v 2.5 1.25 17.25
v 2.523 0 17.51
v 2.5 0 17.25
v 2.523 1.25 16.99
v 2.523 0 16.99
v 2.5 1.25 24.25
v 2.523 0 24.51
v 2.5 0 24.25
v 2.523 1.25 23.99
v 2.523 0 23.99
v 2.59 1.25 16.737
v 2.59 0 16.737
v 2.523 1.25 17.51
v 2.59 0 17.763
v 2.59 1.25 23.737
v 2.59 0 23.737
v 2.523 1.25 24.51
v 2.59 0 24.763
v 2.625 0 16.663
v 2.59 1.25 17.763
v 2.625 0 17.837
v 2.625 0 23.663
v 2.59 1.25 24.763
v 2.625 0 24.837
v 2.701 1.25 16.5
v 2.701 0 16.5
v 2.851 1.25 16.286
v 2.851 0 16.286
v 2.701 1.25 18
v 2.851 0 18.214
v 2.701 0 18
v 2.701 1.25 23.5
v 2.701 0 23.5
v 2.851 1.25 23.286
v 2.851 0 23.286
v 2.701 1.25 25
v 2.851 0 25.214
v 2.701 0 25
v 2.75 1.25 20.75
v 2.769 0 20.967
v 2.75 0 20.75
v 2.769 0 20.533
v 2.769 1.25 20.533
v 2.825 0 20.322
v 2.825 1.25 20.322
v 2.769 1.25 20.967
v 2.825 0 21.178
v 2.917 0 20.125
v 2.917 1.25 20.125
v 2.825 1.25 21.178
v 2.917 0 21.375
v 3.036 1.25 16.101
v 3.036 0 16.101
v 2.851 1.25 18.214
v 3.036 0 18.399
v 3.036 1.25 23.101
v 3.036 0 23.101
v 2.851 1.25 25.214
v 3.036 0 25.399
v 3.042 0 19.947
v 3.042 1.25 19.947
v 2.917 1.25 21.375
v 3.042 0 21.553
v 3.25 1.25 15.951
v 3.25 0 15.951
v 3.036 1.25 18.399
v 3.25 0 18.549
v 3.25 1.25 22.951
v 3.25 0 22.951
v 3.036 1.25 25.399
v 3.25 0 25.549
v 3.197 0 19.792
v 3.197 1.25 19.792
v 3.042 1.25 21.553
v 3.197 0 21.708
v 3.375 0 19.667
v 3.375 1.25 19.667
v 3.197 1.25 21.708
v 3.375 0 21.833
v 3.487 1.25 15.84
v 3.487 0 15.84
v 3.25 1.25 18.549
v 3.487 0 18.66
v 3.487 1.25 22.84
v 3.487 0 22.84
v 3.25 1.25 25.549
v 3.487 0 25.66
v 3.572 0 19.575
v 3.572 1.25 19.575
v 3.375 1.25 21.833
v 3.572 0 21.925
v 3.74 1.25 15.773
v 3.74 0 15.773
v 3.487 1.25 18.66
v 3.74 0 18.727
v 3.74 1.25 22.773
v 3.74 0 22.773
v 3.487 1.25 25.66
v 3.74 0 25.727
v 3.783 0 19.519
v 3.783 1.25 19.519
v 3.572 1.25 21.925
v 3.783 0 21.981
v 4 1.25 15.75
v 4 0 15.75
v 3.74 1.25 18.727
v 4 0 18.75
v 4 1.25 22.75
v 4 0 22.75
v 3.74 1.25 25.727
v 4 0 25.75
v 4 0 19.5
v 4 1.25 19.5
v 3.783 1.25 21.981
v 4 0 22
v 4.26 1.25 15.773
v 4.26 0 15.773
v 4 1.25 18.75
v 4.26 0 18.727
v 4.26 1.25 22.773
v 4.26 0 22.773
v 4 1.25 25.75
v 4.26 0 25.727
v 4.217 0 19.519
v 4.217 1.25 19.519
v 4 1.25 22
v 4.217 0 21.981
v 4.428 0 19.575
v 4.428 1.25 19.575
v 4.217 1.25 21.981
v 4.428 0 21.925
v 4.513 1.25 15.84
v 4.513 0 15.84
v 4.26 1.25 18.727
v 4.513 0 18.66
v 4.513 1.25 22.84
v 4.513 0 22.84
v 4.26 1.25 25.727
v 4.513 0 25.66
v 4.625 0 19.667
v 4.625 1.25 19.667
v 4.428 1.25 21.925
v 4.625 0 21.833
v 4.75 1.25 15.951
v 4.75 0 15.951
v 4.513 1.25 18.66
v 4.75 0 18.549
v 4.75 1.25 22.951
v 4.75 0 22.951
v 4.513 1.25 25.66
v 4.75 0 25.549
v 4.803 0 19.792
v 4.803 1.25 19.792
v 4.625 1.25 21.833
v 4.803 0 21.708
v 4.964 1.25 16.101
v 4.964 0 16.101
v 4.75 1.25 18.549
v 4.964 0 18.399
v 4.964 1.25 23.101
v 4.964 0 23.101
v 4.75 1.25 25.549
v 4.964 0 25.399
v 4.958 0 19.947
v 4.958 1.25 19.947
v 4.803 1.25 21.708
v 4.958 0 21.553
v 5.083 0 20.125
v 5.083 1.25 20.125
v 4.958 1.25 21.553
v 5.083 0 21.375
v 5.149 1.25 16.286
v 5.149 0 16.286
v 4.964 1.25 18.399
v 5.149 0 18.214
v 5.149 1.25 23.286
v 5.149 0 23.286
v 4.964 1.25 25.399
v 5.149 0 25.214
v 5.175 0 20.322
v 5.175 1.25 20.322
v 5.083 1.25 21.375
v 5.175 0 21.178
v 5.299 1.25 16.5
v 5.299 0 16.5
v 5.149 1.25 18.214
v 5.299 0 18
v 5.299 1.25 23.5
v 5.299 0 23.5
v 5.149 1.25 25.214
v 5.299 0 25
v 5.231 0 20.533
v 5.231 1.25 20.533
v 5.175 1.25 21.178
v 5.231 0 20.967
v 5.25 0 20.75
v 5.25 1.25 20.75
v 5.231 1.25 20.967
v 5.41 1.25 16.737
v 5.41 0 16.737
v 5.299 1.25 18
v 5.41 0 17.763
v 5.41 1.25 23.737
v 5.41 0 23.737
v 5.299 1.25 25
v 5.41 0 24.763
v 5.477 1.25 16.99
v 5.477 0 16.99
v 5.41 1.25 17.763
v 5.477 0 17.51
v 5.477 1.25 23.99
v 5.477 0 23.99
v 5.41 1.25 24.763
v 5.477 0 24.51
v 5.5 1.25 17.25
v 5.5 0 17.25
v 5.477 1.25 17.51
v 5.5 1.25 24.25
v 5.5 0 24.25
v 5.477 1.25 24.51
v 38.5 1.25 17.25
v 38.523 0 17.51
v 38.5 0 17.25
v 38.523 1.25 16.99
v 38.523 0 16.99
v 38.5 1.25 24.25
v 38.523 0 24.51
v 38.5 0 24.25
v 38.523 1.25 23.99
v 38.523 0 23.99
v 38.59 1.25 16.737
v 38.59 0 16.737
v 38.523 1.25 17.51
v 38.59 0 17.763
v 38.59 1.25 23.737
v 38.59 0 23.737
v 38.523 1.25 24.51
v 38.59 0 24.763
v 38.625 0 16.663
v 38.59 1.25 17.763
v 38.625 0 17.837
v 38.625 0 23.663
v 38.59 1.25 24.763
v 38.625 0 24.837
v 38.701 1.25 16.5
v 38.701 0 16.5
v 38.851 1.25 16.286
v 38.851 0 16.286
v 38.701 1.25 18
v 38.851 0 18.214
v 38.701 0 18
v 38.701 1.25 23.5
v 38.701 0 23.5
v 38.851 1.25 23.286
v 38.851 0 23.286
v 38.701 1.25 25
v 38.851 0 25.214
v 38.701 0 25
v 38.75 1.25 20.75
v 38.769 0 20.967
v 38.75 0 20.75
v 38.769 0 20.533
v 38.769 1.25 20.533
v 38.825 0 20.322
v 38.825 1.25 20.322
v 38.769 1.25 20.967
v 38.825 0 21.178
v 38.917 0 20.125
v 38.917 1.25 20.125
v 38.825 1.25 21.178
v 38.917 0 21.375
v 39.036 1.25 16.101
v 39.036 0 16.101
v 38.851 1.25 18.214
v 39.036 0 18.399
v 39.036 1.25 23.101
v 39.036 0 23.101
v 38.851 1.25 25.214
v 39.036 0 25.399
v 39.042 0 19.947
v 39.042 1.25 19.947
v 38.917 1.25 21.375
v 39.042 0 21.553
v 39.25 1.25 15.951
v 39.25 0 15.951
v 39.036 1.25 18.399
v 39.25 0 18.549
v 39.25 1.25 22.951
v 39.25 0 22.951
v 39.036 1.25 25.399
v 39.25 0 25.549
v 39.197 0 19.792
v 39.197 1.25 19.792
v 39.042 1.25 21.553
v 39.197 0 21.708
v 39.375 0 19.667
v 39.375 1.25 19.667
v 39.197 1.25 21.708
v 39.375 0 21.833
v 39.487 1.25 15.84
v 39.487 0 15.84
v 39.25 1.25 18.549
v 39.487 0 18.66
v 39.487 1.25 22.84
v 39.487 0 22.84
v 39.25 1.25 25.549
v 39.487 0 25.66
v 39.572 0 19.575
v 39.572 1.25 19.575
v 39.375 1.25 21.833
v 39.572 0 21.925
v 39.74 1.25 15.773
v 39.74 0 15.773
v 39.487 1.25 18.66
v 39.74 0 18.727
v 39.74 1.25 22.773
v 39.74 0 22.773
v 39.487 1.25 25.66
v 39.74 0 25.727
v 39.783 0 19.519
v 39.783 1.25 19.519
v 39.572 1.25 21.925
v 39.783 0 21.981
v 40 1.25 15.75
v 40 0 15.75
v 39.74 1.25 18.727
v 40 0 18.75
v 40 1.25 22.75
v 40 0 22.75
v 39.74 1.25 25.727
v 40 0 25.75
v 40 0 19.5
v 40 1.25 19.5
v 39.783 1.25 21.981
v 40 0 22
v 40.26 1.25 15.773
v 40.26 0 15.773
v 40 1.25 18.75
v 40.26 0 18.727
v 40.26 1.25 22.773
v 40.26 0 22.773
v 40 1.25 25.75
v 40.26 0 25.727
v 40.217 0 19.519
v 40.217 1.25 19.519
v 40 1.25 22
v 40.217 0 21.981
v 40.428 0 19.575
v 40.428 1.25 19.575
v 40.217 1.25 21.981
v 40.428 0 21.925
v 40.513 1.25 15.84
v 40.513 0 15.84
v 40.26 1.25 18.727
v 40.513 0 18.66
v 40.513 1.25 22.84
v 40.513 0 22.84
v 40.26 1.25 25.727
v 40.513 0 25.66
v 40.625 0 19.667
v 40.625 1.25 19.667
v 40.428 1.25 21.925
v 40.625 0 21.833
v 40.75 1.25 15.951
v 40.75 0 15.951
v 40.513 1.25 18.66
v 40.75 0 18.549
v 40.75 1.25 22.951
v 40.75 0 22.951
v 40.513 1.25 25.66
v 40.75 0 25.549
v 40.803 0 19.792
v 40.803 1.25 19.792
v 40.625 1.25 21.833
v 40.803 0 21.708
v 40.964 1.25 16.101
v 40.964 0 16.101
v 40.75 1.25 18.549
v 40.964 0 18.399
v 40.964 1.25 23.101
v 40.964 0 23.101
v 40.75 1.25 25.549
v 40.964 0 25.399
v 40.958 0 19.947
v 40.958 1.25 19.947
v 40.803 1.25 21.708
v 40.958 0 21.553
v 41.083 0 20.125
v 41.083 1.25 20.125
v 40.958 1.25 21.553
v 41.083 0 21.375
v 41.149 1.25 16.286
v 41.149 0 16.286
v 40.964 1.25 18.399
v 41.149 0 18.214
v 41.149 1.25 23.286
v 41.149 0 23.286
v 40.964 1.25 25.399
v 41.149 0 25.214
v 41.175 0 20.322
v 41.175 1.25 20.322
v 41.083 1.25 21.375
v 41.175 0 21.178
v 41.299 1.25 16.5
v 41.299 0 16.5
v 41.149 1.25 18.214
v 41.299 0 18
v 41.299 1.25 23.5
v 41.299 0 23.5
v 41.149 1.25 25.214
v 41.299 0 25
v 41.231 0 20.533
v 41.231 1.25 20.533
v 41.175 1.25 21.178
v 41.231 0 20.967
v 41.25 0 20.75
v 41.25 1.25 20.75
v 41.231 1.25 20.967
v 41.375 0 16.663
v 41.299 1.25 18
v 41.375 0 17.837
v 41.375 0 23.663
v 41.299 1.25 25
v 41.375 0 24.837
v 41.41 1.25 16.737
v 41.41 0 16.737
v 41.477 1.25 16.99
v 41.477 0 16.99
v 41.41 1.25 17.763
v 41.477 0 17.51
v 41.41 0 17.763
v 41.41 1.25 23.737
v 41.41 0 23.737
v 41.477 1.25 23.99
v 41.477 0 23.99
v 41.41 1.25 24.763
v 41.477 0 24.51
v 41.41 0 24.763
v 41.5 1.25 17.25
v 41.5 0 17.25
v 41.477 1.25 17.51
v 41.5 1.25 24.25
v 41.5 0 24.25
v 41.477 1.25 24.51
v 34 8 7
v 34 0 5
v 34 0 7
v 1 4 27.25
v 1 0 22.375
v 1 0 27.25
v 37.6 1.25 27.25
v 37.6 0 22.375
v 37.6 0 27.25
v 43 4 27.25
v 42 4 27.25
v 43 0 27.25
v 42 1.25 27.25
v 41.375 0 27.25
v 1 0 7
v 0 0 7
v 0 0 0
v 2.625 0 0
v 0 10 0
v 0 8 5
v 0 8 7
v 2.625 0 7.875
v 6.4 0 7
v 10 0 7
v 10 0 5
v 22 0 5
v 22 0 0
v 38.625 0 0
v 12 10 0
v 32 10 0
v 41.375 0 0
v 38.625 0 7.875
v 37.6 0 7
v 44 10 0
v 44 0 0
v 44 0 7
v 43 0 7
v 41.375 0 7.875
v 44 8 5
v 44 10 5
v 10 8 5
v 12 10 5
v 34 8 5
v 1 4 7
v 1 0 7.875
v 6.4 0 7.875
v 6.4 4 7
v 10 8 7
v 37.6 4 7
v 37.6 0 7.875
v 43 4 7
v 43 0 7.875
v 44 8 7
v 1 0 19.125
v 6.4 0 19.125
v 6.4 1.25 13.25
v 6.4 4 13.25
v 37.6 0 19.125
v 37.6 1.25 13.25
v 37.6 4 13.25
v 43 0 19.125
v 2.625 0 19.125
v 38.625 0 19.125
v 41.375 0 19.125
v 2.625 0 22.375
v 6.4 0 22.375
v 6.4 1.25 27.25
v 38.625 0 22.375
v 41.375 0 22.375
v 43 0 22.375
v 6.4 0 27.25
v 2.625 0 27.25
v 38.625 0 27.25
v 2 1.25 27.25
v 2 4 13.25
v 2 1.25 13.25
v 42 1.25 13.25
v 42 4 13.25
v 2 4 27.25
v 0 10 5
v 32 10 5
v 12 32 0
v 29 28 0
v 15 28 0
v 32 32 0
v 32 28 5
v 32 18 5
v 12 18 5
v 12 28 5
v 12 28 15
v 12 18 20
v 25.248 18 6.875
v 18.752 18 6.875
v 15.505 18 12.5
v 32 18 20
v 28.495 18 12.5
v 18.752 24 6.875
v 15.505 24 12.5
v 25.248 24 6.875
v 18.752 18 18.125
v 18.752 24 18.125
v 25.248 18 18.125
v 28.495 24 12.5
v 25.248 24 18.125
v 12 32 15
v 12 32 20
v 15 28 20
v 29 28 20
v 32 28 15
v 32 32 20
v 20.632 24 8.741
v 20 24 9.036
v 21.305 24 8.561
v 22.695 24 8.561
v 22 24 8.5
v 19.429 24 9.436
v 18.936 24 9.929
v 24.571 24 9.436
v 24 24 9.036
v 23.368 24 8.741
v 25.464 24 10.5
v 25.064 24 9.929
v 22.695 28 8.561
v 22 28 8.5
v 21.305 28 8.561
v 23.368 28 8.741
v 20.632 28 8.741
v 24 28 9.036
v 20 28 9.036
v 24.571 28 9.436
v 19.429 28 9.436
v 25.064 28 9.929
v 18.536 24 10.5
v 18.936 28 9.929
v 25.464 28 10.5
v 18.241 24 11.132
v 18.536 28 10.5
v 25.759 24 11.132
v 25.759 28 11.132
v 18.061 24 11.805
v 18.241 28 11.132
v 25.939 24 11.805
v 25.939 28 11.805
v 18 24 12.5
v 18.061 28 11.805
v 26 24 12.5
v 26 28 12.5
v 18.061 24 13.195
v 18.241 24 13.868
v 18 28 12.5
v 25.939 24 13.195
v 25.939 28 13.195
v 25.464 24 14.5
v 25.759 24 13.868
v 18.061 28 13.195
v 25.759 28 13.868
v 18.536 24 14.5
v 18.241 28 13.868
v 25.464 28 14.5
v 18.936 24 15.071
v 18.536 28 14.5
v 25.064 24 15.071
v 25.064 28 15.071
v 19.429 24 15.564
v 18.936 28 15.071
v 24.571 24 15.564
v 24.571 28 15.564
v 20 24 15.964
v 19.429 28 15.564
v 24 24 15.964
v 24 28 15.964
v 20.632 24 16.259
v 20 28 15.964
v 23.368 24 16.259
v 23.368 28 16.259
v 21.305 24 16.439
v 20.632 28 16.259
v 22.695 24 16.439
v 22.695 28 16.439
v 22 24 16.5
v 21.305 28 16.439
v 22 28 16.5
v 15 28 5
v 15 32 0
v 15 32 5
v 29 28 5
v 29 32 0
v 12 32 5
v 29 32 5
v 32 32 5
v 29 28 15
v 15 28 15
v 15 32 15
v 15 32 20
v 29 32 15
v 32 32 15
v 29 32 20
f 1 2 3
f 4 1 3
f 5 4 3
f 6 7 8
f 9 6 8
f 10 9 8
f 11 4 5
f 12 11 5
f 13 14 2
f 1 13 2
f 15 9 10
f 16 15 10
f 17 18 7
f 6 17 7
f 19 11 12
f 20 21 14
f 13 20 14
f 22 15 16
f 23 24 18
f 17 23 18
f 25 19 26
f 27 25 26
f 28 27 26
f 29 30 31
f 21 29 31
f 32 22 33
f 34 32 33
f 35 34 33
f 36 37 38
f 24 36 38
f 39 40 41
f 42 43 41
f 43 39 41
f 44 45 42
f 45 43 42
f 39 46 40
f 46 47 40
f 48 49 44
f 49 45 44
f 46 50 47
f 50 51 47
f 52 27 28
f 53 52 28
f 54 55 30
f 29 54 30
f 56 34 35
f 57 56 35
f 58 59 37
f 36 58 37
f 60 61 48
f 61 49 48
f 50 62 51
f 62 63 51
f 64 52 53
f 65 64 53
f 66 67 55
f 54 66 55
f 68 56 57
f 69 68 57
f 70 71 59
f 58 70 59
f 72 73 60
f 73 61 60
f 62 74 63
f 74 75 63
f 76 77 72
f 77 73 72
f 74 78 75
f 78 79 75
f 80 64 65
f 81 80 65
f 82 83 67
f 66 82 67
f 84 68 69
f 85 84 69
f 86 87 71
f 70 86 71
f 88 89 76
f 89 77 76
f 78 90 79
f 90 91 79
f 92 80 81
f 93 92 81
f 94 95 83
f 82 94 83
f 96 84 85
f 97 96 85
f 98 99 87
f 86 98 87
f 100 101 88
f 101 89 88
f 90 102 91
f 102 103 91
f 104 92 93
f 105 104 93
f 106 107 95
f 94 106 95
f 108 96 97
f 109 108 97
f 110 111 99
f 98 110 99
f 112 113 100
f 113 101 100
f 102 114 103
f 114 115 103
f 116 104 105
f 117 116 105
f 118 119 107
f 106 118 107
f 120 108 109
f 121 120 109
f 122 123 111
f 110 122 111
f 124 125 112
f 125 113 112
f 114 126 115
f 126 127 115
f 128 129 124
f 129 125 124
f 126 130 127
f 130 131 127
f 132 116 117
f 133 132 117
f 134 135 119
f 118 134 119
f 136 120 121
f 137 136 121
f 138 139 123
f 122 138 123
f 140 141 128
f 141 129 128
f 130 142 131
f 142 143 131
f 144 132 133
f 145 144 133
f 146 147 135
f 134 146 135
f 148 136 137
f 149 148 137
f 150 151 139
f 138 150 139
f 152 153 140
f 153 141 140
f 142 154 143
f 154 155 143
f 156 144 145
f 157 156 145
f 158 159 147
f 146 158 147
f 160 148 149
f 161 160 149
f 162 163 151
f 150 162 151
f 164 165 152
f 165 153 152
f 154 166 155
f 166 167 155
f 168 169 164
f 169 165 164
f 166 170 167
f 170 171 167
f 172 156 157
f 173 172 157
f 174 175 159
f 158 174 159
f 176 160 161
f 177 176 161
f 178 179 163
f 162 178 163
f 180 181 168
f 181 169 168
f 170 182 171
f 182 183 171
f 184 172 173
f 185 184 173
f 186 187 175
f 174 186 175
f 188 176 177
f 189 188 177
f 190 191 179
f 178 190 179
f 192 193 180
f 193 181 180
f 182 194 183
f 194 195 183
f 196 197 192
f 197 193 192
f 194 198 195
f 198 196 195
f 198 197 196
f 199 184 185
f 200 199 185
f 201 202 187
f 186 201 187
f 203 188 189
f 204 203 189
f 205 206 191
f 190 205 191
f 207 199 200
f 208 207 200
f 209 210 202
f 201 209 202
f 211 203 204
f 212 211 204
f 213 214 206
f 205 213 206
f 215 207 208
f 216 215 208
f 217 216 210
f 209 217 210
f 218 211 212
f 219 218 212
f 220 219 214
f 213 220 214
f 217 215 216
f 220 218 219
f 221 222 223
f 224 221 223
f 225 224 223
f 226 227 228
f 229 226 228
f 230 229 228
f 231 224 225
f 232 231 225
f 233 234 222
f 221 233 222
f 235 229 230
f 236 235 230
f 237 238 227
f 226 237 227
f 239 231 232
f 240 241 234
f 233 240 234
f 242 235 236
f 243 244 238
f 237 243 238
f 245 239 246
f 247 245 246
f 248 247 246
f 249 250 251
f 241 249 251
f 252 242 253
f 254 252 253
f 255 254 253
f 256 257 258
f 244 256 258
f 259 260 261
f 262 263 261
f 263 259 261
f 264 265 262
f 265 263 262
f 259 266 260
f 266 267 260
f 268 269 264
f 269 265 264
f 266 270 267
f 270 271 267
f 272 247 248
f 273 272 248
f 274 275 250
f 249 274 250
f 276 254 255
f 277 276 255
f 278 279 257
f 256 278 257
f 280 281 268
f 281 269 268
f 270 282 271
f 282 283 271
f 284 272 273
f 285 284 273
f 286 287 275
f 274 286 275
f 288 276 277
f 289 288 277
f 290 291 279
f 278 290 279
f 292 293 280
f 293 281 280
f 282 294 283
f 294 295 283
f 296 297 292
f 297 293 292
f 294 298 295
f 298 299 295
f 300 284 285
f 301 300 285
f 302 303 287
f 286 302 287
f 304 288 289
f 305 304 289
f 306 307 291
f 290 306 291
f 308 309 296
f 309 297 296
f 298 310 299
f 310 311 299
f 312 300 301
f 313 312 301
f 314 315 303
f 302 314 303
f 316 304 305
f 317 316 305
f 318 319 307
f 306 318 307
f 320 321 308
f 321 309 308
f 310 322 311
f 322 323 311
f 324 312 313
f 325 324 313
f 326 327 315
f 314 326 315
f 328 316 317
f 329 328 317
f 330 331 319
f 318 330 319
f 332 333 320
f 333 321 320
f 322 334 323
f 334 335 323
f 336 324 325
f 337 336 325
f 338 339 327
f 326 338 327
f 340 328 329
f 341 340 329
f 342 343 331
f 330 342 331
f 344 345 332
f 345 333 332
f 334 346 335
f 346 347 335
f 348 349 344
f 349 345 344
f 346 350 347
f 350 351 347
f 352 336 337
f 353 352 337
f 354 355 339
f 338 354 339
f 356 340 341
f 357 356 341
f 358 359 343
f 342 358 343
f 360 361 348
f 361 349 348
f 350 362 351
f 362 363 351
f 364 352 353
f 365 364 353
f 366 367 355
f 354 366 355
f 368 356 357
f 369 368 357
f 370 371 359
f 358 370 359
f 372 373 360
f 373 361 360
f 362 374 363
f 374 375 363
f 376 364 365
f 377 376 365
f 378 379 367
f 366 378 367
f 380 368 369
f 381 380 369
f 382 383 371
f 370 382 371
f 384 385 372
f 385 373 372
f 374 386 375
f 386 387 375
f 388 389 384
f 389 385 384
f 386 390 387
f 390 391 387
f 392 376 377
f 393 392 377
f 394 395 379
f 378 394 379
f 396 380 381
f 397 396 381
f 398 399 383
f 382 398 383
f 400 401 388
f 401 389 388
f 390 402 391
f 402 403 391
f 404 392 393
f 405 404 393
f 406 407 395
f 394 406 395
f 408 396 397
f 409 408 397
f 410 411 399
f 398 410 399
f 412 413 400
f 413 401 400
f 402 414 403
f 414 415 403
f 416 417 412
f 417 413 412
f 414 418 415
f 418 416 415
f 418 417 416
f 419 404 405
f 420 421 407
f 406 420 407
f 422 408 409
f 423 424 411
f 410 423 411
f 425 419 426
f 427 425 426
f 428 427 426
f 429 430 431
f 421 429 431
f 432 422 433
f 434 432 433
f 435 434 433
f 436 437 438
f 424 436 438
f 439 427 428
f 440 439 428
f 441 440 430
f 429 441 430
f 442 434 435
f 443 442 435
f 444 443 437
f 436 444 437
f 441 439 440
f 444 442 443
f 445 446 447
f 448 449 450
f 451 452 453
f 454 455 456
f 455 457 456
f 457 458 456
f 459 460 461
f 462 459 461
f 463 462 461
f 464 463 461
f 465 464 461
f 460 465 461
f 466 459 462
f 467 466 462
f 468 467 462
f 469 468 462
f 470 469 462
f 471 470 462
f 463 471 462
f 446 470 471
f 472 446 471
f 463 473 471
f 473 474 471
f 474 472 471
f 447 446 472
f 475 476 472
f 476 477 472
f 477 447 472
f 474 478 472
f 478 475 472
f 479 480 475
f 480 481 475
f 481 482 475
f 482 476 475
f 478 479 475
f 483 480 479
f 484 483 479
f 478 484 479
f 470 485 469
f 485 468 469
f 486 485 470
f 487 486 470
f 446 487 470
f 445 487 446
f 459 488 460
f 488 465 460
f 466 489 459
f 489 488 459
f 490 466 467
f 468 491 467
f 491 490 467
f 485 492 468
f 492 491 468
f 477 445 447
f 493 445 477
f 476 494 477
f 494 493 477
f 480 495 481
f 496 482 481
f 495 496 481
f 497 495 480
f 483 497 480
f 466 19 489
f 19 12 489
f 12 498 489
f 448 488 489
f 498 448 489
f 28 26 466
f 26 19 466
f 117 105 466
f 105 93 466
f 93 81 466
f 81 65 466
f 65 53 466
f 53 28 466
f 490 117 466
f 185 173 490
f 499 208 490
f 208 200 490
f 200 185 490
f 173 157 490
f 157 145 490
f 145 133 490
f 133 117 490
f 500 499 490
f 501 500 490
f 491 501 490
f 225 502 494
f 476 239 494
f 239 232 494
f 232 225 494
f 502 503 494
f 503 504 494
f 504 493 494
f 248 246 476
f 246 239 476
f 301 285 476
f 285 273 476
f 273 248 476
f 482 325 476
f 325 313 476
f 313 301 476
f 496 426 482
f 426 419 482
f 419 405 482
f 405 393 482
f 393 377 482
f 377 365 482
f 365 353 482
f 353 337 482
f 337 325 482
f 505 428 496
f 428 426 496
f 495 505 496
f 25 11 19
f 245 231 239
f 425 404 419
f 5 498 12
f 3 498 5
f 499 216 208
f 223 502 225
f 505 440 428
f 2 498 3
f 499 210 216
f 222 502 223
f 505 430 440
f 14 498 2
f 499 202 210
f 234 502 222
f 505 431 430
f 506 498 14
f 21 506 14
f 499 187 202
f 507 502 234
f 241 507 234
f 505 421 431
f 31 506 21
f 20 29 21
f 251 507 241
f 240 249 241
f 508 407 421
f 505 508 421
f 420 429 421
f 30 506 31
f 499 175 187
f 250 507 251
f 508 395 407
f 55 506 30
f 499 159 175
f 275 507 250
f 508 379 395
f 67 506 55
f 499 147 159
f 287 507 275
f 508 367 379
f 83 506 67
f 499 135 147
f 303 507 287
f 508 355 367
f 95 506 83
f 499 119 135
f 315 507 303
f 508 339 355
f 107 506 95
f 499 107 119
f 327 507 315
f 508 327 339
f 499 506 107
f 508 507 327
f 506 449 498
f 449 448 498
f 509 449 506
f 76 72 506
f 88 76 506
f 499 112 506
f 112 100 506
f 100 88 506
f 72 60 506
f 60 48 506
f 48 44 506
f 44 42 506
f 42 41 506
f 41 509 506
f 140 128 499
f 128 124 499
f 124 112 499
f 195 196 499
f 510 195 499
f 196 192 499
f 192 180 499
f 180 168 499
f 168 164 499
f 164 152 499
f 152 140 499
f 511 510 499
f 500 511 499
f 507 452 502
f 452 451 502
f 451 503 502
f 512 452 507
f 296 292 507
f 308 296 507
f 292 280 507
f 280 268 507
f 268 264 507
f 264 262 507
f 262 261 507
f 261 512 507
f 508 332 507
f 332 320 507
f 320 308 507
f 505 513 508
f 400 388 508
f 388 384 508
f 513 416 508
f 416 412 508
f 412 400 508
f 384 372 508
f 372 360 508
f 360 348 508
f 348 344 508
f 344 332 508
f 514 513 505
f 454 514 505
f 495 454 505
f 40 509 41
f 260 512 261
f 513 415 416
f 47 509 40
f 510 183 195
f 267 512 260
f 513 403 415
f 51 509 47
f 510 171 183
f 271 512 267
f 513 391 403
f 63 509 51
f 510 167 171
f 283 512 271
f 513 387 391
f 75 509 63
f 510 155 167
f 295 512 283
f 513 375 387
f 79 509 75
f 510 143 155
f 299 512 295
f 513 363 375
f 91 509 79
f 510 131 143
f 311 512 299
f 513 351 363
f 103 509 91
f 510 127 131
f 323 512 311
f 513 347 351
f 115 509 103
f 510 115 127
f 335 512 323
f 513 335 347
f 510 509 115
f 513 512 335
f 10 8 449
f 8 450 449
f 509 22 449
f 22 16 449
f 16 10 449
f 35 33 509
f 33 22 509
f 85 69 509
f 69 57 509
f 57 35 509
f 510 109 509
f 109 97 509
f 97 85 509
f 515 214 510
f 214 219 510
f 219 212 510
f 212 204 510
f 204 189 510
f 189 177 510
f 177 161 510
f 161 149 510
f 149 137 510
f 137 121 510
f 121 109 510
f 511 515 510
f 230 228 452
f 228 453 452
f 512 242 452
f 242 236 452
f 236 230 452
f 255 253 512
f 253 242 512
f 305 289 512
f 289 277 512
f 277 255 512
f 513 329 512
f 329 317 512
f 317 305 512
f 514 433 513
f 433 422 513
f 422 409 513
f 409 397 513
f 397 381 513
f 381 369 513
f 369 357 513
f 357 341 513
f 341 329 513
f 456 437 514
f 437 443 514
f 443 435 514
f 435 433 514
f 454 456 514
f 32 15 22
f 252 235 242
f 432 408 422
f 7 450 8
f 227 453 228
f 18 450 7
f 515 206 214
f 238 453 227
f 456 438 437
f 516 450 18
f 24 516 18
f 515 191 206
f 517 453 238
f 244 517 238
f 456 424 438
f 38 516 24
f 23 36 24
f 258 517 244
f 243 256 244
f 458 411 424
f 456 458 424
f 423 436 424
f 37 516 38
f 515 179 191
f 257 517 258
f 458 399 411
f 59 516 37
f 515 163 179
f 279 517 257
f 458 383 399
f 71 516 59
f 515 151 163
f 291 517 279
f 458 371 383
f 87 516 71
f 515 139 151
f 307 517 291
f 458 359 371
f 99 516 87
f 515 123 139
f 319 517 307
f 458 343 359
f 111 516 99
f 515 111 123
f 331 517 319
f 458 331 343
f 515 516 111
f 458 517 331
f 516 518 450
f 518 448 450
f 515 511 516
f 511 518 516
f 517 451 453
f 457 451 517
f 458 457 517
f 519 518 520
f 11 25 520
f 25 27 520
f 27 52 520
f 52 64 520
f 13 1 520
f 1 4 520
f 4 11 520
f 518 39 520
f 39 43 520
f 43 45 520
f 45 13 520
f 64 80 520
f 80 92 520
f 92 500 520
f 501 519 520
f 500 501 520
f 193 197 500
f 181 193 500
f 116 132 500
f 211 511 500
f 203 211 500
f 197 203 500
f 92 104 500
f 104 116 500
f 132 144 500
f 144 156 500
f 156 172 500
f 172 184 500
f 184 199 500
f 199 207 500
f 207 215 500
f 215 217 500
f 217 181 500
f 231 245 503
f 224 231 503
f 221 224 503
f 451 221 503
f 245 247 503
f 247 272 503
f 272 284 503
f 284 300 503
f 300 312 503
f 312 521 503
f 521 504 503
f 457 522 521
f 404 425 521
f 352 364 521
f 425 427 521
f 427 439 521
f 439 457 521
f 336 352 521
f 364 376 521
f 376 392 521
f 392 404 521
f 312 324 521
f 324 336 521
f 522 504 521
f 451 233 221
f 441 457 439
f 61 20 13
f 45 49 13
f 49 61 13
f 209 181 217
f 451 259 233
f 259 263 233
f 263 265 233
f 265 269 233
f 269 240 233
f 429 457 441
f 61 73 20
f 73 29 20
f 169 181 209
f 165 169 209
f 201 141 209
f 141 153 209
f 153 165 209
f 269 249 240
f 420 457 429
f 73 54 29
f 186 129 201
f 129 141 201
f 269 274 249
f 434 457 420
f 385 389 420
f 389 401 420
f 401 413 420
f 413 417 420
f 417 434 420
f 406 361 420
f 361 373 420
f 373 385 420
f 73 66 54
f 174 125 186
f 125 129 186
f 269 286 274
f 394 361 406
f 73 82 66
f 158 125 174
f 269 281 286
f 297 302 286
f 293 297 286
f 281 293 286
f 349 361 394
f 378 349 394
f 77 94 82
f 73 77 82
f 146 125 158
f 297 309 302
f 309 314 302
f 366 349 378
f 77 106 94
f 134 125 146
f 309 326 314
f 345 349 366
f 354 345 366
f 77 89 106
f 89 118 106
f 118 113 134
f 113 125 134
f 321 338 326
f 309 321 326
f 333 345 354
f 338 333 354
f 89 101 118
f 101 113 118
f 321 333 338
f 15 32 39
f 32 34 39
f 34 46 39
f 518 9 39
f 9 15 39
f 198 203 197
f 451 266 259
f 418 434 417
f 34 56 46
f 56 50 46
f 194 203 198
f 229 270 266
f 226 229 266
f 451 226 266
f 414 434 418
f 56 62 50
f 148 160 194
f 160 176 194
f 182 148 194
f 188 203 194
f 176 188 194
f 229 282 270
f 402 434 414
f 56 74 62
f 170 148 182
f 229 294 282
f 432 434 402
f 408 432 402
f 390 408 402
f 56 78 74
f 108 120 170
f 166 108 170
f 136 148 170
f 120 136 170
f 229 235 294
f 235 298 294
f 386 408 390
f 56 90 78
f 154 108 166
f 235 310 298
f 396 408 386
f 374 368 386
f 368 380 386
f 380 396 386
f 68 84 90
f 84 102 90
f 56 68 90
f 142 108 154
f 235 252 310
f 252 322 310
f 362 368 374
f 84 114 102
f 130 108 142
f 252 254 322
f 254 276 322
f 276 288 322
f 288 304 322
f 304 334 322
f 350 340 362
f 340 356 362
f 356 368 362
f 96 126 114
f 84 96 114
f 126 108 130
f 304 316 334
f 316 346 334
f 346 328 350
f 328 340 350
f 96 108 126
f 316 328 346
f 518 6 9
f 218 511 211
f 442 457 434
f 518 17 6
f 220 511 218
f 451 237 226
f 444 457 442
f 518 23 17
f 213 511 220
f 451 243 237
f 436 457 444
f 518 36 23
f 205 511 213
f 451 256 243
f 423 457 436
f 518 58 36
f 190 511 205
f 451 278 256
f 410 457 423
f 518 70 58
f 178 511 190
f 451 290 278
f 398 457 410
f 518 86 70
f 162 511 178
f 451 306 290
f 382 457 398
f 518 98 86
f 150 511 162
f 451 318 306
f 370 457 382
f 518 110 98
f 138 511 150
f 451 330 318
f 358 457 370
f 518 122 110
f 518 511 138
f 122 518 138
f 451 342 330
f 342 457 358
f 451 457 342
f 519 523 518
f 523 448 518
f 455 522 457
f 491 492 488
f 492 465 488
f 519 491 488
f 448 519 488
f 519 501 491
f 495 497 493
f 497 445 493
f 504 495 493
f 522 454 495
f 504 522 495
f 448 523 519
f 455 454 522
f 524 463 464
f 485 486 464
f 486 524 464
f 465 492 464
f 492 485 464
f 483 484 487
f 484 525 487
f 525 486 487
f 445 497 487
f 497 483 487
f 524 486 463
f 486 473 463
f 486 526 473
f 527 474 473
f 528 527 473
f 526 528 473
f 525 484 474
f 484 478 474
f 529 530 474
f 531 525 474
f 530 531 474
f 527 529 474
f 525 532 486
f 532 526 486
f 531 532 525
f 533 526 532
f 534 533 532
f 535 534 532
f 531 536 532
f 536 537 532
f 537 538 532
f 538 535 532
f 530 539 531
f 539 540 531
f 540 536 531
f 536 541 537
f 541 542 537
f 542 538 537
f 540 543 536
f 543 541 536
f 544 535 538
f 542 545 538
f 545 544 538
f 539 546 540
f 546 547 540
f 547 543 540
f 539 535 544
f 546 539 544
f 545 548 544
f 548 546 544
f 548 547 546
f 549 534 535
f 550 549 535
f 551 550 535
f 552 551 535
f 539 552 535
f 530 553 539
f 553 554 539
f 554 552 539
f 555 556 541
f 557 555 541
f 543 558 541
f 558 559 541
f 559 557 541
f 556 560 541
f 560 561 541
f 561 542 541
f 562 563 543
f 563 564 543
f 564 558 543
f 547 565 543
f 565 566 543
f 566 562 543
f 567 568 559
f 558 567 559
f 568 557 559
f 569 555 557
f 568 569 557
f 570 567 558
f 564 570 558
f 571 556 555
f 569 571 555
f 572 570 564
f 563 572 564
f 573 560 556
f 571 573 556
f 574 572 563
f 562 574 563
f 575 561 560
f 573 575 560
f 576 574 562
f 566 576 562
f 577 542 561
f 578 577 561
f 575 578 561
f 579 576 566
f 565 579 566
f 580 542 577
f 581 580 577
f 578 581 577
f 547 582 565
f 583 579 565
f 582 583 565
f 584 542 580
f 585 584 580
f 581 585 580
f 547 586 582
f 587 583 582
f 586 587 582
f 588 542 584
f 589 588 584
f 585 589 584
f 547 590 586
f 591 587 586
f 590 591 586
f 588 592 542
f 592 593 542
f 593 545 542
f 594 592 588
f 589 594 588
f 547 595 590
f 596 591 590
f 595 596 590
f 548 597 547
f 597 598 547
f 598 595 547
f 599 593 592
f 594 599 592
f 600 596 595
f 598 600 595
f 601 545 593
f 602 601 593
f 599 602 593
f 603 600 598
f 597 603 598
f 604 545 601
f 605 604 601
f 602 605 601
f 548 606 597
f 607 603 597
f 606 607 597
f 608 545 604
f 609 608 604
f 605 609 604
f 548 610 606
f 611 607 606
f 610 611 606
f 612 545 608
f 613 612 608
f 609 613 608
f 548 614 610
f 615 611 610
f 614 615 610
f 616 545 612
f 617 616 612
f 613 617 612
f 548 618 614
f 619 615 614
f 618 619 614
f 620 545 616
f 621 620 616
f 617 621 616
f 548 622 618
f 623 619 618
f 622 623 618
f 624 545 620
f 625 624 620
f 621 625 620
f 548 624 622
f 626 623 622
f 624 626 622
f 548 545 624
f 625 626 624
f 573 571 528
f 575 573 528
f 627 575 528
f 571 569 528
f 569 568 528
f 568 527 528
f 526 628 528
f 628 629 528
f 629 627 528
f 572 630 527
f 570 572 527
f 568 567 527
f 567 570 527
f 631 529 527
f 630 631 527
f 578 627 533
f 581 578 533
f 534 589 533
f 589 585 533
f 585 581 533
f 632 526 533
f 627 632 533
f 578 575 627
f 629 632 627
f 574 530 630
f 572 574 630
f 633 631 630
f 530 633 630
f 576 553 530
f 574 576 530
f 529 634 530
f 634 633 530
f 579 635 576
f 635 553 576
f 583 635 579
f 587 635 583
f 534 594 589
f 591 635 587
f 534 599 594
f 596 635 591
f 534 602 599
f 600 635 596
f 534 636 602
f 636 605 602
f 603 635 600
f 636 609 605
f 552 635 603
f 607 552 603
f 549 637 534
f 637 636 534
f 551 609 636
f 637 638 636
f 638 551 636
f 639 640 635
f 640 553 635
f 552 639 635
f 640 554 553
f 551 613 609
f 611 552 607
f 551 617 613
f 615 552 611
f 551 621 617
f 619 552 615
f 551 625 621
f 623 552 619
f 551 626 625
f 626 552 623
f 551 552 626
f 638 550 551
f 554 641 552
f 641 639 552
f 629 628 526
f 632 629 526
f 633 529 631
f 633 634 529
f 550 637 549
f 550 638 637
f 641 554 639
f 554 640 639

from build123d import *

# Parameters (mm, degrees)
BOSS_EXTRUDE1_DEPTH = 5
SKETCH2_W           = 10
SKETCH2_H           = 8
BOSS_EXTRUDE2_DEPTH = 2
BOSS_EXTRUDE3_DEPTH = 20.25
SKETCH4_R           = 1.25
SKETCH4_R_2         = 1.5
CUT_EXTRUDE1_DEPTH  = 59.259119458
SKETCH6_W           = 4.4
SKETCH6_H           = 2.75
BOSS_EXTRUDE4_DEPTH = 6.25
SKETCH7_W           = 20
SKETCH7_H           = 10
BOSS_EXTRUDE5_DEPTH = 15
CUT_EXTRUDE2_DEPTH  = 6
SKETCH9_R           = 4
CUT_EXTRUDE3_DEPTH  = 58.048772993
SKETCH10_W          = 3
SKETCH10_H          = 5
BOSS_EXTRUDE6_DEPTH = 4


with BuildPart() as part:
    # Sketch1 → Boss-Extrude1 (new body)
    with BuildSketch(Plane.XY):
        Polygon((0, 0), (44, 0), (44, 10), (32, 10), (32, 28), (12, 28), (12, 10), (0, 10), align=None)
    extrude(amount=BOSS_EXTRUDE1_DEPTH)

    # Sketch2 → Boss-Extrude2 (add)
    with BuildSketch(Plane.XY.offset(5)):
        with Locations((39, 4)):
            Rectangle(SKETCH2_W, SKETCH2_H)
        with Locations((5, 4)):
            Rectangle(SKETCH2_W, SKETCH2_H)
    extrude(amount=BOSS_EXTRUDE2_DEPTH)

    # Sketch3 → Boss-Extrude3 (add)
    with BuildSketch(Plane.XY.offset(7)):
        Polygon((37.6, 0), (43, 0), (43, 4), (42, 4), (42, 1.25), (37.6, 1.25), align=None)
        Polygon((1, 0), (6.4, 0), (6.4, 1.25), (2, 1.25), (2, 4), (1, 4), align=None)
    extrude(amount=BOSS_EXTRUDE3_DEPTH)

    # Sketch4 → Cut-Extrude1 (cut, through all)
    with BuildSketch(Plane(origin=(0, 1.25, 0), x_dir=(1, 0, 0), z_dir=(0, 1, 0))):
        with Locations(Location((40, -20.75, 0), (0, 0, 180))):
            Circle(SKETCH4_R)
        with Locations(Location((40, -24.25, 0), (0, 0, 180))):
            Circle(SKETCH4_R_2)
        with Locations(Location((4, -24.25, 0), (0, 0, 180))):
            Circle(SKETCH4_R_2)
        with Locations(Location((4, -17.25, 0), (0, 0, 180))):
            Circle(SKETCH4_R_2)
        with Locations(Location((4, -20.75, 0), (0, 0, 180))):
            Circle(SKETCH4_R)
        with Locations(Location((40, -17.25, 0), (0, 0, 180))):
            Circle(SKETCH4_R_2)
    extrude(amount=-CUT_EXTRUDE1_DEPTH, mode=Mode.SUBTRACT)

    # Sketch6 → Boss-Extrude4 (add)
    with BuildSketch(Plane.XY.offset(7)):
        with Locations((4.2, 2.625)):
            Rectangle(SKETCH6_W, SKETCH6_H)
        with Locations((39.8, 2.625)):
            Rectangle(SKETCH6_W, SKETCH6_H)
    extrude(amount=BOSS_EXTRUDE4_DEPTH)

    # Sketch7 → Boss-Extrude5 (add)
    with BuildSketch(Plane.XY.offset(5)):
        with Locations((22, 23)):
            Rectangle(SKETCH7_W, SKETCH7_H)
    extrude(amount=BOSS_EXTRUDE5_DEPTH)

    # Sketch8 → Cut-Extrude2 (cut)
    with BuildSketch(Plane.XZ.offset(-18)):
        Polygon((28.495190528, 12.5), (25.247595264, 18.125), (18.752404736, 18.125), (15.504809472, 12.5), (18.752404736, 6.875), (25.247595264, 6.875), align=None)
    extrude(amount=-CUT_EXTRUDE2_DEPTH, mode=Mode.SUBTRACT)

    # Sketch9 → Cut-Extrude3 (cut, through all)
    with BuildSketch(Plane.XZ.offset(-24)):
        with Locations(Location((22, 12.5, 0), (0, 0, 270))):
            Circle(SKETCH9_R)
    extrude(amount=-CUT_EXTRUDE3_DEPTH, mode=Mode.SUBTRACT)

    # Sketch10 → Boss-Extrude6 (add)
    with BuildSketch(Plane(origin=(0, 28, 0), x_dir=(1, 0, 0), z_dir=(0, 1, 0))):
        with Locations((30.5, -2.5)):
            Rectangle(SKETCH10_W, SKETCH10_H)
        with Locations((30.5, -17.5)):
            Rectangle(SKETCH10_W, SKETCH10_H)
        with Locations((13.5, -2.5)):
            Rectangle(SKETCH10_W, SKETCH10_H)
        with Locations((13.5, -17.5)):
            Rectangle(SKETCH10_W, SKETCH10_H)
    extrude(amount=BOSS_EXTRUDE6_DEPTH)


solid = part.part
